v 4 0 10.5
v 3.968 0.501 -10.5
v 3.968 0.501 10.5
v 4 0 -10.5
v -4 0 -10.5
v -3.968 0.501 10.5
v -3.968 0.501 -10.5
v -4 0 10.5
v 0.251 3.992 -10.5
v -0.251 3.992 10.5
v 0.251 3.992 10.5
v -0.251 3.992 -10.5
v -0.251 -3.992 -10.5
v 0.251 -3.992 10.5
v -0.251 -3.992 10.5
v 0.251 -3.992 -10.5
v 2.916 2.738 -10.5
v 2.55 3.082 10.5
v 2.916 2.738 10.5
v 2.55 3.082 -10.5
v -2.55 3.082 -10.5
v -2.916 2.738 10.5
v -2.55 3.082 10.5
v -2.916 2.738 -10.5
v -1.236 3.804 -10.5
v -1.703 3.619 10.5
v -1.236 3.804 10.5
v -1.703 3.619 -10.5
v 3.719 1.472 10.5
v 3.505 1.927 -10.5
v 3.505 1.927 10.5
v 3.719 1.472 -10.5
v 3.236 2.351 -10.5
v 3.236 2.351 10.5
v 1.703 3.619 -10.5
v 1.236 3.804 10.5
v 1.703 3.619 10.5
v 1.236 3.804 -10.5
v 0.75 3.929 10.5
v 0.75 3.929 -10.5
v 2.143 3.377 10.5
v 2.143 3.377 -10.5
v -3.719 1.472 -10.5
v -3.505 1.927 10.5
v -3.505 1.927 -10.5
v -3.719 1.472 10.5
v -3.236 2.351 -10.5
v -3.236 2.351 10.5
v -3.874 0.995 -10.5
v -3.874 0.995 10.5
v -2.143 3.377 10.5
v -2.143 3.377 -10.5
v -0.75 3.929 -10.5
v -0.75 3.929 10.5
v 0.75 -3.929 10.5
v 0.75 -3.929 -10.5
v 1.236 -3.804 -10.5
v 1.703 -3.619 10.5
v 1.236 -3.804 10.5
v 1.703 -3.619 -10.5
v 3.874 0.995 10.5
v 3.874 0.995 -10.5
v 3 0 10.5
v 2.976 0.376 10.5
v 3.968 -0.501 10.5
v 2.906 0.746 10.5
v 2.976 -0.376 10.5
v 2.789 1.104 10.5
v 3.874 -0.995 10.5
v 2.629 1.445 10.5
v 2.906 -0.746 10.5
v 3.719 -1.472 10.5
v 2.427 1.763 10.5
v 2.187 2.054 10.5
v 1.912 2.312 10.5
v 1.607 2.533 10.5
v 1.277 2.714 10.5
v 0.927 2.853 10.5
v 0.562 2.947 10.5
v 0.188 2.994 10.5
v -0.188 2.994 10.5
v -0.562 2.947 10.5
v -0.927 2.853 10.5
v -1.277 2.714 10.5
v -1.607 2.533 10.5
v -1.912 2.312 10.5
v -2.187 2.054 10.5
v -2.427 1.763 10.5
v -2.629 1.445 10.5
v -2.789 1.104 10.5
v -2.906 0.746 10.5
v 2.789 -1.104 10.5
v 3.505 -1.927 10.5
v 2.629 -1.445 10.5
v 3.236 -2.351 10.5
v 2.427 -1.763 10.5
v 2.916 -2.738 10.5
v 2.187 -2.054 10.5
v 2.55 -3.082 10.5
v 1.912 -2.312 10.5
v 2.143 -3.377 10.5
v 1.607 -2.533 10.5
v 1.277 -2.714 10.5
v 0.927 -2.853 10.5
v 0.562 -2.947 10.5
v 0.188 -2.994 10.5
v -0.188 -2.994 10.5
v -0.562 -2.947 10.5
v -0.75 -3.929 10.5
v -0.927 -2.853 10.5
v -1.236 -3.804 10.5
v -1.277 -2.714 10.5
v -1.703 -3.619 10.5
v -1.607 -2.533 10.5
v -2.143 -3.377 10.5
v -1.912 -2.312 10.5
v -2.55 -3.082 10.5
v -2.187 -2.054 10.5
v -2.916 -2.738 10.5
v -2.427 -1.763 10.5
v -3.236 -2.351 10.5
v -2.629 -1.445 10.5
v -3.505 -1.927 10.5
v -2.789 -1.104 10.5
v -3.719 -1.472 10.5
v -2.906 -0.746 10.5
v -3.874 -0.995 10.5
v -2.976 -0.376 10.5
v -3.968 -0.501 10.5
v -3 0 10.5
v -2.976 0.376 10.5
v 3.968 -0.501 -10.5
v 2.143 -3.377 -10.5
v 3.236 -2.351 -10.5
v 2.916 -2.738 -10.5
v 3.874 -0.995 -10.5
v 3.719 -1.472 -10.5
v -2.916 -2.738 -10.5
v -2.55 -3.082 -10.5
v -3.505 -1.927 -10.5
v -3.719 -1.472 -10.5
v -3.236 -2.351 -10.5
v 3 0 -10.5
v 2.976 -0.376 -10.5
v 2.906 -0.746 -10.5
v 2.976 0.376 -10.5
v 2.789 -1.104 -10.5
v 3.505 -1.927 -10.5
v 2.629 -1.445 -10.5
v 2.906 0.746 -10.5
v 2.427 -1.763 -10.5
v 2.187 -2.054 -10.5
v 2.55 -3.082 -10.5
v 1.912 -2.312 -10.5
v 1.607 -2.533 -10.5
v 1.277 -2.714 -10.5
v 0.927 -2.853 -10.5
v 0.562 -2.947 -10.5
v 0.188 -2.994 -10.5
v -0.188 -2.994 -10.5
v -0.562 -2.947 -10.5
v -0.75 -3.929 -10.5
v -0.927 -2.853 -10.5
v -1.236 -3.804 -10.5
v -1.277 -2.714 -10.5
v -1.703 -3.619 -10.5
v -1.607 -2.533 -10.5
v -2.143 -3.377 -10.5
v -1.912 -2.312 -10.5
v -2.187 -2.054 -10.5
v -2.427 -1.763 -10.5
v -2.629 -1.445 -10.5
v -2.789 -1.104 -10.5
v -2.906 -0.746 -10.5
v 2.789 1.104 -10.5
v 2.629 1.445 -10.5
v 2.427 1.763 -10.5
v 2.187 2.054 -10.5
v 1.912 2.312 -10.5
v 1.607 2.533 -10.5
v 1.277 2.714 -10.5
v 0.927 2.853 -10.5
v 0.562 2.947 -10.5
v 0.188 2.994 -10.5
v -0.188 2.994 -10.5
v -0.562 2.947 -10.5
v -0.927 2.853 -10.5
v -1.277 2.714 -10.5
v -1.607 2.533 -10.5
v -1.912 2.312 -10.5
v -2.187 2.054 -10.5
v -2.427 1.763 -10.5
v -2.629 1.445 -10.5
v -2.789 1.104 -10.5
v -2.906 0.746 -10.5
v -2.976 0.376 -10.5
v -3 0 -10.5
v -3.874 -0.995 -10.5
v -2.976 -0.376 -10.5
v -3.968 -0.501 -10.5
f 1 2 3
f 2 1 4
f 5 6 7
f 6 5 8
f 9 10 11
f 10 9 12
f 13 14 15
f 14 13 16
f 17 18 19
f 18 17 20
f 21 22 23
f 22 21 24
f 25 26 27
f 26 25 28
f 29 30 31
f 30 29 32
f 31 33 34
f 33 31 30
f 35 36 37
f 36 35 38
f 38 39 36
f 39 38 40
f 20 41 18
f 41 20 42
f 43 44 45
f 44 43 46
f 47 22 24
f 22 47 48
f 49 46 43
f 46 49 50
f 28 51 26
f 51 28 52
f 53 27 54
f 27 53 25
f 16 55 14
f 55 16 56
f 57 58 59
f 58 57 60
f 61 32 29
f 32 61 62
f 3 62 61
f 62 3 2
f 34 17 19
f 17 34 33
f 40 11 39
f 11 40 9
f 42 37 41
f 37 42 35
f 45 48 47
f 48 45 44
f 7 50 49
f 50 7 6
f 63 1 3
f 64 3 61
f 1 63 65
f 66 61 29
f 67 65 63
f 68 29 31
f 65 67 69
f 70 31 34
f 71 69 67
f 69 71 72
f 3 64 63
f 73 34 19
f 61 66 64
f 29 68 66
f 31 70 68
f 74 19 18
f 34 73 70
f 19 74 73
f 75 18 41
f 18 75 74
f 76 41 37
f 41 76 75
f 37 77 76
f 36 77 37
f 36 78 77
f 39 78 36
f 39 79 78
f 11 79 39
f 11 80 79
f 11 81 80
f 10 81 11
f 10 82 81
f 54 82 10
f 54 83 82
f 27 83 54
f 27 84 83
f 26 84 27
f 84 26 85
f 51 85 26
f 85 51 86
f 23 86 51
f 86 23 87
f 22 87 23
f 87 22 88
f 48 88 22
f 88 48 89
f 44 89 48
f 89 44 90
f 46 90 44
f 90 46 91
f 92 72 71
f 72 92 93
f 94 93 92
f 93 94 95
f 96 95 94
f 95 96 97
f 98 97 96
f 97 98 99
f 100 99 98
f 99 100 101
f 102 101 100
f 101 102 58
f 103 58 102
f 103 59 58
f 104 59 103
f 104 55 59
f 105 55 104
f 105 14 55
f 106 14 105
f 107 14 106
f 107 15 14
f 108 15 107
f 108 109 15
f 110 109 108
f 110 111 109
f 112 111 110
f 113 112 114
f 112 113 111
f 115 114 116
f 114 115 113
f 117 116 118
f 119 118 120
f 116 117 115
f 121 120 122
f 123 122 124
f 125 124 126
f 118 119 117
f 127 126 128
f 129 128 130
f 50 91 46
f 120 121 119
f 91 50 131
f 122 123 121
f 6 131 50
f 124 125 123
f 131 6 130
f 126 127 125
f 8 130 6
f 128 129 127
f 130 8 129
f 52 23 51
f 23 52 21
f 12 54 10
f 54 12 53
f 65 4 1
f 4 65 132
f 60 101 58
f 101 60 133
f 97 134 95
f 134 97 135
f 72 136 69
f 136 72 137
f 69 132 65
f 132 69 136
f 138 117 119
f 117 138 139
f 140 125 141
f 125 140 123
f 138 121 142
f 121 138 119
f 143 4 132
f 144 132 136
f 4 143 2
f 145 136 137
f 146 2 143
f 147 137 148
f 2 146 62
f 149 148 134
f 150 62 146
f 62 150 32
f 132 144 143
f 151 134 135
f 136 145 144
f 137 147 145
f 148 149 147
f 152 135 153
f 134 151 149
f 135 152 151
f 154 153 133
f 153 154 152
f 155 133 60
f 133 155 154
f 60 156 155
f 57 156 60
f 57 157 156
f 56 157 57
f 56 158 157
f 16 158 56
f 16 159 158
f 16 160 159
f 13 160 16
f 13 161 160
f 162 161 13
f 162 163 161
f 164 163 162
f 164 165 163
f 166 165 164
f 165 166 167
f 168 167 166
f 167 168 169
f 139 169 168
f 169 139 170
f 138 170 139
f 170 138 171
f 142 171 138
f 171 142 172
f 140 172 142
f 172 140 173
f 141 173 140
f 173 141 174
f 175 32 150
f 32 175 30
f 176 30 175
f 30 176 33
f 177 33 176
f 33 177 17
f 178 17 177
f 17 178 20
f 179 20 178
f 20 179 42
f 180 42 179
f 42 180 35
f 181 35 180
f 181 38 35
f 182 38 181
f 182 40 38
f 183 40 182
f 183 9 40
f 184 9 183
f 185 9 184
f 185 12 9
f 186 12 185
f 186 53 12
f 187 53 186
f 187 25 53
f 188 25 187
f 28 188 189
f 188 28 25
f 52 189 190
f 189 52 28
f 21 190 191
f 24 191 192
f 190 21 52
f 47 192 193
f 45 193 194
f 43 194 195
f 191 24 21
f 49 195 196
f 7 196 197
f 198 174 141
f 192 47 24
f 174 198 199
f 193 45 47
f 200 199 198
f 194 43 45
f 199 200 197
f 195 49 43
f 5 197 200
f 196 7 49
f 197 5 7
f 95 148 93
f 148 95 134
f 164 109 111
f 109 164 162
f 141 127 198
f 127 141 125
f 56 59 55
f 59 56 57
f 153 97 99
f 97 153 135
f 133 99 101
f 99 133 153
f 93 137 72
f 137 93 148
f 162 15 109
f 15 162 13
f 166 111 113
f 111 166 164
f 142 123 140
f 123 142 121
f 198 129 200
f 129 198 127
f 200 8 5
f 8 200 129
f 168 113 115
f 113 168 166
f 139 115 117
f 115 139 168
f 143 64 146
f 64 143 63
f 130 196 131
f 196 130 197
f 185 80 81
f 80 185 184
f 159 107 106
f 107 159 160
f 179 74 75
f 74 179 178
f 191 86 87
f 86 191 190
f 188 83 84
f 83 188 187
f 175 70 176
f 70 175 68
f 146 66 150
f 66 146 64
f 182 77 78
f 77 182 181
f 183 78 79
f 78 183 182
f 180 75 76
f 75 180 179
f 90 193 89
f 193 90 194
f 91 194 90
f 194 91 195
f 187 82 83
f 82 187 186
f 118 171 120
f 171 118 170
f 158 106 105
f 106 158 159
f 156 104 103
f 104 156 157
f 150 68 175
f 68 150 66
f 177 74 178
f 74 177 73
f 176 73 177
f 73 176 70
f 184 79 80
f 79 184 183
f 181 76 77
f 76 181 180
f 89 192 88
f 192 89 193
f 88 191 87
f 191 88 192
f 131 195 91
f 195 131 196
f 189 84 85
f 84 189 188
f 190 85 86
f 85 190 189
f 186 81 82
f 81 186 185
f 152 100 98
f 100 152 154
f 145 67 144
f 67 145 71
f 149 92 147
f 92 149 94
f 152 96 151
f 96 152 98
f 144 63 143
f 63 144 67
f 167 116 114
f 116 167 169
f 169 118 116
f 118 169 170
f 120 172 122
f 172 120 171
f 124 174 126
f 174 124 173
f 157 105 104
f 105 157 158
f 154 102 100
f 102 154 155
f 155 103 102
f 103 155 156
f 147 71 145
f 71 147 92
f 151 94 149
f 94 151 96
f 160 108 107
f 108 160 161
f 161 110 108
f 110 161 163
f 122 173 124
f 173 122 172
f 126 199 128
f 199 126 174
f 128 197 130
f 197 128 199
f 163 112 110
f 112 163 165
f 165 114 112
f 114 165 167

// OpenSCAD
$fn = 50;


difference() {
	union() {
		translate(v = [0, 0, -10.5000000000]) {
			cylinder(h = 21, r = 4.0000000000);
		}
	}
	union() {
		translate(v = [0, 0, -100.0000000000]) {
			cylinder(h = 200, r = 3);
		}
	}
}
